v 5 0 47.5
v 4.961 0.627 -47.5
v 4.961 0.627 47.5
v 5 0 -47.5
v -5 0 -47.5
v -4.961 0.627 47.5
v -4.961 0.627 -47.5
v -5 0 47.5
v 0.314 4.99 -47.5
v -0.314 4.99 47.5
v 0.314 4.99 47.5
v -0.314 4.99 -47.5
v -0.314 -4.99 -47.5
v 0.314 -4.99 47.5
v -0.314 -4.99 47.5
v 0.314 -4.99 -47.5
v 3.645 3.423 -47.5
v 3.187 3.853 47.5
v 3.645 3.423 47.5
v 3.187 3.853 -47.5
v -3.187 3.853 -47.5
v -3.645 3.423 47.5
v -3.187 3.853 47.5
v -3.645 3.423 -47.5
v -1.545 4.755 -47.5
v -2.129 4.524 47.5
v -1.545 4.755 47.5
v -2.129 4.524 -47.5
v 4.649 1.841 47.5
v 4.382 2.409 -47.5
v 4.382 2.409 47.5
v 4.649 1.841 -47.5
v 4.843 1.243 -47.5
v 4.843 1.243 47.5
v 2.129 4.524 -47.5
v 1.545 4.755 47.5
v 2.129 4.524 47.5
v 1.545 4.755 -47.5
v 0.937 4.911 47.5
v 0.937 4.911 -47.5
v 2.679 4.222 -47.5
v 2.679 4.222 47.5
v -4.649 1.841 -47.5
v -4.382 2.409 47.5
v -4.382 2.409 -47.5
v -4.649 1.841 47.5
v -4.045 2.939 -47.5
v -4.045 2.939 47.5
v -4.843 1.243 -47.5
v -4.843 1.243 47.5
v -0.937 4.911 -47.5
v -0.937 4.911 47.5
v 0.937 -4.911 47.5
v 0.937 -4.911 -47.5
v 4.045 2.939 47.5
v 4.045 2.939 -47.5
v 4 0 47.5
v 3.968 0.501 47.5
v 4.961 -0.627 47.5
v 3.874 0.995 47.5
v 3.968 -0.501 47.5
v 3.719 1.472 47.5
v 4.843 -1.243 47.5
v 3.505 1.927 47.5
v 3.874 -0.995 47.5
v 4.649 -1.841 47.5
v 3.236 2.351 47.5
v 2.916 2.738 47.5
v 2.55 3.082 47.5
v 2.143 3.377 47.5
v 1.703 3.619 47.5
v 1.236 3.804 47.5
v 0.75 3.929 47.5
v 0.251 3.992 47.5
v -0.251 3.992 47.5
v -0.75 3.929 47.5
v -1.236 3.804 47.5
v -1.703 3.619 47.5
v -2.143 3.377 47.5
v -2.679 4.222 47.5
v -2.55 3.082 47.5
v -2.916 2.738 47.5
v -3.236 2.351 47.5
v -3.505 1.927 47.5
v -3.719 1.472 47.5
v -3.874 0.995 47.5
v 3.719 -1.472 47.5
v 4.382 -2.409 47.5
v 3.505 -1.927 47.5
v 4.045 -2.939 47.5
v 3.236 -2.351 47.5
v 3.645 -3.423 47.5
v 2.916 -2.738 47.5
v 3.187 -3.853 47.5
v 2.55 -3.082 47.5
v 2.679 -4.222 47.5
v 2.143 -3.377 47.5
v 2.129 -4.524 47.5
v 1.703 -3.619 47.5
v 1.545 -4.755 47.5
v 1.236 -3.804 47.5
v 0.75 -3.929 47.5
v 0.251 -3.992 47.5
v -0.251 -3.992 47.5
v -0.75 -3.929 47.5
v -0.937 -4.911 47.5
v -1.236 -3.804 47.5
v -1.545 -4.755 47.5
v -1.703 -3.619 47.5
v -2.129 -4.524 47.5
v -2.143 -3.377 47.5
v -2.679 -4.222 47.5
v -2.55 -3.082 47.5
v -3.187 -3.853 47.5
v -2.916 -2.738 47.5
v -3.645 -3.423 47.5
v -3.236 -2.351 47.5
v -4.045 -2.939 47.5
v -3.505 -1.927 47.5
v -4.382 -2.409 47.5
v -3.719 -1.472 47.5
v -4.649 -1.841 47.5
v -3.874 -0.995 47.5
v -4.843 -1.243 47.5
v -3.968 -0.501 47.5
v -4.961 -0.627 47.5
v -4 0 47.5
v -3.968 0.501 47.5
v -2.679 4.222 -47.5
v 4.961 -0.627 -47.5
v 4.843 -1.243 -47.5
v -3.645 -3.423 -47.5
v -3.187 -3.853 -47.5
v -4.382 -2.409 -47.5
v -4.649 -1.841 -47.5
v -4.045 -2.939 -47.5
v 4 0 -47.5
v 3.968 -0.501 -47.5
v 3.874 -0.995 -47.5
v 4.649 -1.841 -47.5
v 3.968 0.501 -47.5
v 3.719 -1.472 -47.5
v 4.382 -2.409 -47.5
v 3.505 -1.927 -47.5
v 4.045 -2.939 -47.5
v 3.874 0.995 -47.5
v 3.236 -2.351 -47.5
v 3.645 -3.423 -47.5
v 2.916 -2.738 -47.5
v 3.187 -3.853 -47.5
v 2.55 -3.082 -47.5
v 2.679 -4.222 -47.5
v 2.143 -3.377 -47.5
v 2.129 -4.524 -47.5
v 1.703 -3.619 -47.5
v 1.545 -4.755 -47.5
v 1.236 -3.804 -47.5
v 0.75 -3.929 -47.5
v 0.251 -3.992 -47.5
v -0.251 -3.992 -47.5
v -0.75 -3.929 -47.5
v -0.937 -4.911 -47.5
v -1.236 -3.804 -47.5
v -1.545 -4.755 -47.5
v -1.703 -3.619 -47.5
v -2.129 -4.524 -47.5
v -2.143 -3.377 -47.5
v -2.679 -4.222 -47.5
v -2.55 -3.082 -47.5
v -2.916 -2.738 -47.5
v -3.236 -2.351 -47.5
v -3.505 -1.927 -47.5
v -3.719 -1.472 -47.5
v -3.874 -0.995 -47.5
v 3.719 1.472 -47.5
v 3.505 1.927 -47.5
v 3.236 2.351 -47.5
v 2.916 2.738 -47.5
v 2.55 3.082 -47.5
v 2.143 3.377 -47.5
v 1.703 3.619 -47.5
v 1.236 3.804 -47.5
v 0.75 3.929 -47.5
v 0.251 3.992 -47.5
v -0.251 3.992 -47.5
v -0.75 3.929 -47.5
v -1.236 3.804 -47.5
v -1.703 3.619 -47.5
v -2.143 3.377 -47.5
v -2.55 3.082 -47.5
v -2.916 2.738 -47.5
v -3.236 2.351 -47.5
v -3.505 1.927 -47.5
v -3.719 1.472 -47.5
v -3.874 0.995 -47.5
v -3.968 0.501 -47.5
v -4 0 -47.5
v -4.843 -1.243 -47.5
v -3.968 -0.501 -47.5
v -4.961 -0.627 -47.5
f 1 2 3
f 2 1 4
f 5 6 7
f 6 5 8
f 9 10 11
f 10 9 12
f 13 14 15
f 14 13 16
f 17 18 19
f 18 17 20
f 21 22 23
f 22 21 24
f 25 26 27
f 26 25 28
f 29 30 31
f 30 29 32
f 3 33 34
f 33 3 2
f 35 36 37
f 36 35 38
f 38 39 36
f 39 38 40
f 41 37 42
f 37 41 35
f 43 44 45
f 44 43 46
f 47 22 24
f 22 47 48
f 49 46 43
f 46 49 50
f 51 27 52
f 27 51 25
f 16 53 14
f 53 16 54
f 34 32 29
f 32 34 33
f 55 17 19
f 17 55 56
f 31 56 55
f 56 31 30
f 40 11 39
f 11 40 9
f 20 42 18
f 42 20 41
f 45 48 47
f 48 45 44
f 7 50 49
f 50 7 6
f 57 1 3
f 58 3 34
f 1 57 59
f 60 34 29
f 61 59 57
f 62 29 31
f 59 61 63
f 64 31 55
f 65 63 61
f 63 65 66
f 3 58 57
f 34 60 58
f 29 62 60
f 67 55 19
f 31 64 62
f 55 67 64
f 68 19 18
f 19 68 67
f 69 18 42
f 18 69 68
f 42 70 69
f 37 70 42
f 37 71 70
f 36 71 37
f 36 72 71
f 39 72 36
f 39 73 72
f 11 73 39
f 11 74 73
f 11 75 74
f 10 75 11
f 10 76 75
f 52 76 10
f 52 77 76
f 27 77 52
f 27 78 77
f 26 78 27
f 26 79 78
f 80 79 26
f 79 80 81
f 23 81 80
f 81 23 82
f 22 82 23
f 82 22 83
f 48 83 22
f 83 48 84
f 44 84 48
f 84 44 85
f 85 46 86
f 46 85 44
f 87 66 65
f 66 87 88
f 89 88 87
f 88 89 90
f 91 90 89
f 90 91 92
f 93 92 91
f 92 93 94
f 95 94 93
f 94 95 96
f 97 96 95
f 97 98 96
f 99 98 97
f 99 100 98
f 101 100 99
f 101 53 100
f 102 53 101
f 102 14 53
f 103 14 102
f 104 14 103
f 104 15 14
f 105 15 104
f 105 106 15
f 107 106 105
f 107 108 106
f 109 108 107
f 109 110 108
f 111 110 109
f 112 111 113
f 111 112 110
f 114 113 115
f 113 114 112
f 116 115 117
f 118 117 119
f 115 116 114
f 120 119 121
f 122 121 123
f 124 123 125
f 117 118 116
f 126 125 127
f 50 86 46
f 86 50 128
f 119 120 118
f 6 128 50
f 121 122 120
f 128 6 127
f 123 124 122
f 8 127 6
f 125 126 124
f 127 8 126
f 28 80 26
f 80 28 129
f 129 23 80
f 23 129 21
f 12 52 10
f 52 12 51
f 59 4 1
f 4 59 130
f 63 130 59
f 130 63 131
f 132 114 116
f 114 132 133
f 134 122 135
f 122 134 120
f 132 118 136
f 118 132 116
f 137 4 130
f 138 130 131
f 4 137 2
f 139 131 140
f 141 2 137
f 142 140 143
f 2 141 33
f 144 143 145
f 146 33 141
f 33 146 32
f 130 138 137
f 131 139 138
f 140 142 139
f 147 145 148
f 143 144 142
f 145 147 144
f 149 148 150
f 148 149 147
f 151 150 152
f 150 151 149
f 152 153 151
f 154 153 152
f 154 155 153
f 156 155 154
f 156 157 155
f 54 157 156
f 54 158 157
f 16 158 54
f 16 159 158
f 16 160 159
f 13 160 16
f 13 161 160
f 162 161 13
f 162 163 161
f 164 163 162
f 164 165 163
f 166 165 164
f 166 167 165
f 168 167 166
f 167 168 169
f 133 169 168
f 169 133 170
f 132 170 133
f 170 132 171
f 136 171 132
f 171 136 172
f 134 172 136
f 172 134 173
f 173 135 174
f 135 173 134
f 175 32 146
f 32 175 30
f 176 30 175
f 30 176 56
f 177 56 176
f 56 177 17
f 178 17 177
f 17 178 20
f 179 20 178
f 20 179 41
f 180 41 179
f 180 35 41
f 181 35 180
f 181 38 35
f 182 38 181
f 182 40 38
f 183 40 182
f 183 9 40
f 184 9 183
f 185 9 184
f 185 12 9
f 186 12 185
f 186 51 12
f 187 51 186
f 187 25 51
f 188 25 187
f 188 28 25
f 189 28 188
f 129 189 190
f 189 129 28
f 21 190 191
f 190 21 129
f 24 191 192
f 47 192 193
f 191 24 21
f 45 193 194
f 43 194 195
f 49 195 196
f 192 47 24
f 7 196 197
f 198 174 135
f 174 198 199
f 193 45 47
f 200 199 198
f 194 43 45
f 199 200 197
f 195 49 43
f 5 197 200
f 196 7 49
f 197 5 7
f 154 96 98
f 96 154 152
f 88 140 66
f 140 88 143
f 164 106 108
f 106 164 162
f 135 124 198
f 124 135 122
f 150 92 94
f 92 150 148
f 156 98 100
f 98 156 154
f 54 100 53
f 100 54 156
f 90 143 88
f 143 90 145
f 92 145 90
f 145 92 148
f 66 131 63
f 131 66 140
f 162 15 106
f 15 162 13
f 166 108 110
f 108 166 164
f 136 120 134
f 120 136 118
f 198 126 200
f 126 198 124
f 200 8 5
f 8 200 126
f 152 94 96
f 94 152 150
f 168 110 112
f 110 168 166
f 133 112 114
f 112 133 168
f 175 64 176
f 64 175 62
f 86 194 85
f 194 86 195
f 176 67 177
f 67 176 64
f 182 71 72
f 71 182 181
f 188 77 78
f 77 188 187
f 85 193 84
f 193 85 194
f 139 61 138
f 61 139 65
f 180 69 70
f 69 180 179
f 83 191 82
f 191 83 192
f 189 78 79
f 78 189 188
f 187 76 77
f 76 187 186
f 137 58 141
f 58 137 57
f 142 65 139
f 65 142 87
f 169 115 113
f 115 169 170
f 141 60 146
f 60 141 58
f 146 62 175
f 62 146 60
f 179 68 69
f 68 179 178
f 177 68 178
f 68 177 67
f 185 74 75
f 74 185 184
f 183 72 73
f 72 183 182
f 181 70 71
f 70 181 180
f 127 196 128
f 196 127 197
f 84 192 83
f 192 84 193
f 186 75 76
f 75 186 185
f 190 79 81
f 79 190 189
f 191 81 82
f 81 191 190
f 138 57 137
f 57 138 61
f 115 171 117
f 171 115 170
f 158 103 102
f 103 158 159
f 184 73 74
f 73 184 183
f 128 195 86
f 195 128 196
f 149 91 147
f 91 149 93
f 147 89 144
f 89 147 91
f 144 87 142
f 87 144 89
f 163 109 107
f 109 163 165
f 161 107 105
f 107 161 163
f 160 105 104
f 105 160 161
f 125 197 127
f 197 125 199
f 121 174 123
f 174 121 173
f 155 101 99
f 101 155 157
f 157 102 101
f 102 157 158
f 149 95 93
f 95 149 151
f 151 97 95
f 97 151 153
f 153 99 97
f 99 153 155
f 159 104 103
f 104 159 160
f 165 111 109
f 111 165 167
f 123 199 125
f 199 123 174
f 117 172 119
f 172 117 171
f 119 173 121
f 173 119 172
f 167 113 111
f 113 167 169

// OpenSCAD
$fn = 50;


difference() {
	union() {
		translate(v = [0, 0, -47.5000000000]) {
			cylinder(h = 95, r = 5.0000000000);
		}
	}
	union() {
		translate(v = [0, 0, -100.0000000000]) {
			cylinder(h = 200, r = 4);
		}
	}
}
